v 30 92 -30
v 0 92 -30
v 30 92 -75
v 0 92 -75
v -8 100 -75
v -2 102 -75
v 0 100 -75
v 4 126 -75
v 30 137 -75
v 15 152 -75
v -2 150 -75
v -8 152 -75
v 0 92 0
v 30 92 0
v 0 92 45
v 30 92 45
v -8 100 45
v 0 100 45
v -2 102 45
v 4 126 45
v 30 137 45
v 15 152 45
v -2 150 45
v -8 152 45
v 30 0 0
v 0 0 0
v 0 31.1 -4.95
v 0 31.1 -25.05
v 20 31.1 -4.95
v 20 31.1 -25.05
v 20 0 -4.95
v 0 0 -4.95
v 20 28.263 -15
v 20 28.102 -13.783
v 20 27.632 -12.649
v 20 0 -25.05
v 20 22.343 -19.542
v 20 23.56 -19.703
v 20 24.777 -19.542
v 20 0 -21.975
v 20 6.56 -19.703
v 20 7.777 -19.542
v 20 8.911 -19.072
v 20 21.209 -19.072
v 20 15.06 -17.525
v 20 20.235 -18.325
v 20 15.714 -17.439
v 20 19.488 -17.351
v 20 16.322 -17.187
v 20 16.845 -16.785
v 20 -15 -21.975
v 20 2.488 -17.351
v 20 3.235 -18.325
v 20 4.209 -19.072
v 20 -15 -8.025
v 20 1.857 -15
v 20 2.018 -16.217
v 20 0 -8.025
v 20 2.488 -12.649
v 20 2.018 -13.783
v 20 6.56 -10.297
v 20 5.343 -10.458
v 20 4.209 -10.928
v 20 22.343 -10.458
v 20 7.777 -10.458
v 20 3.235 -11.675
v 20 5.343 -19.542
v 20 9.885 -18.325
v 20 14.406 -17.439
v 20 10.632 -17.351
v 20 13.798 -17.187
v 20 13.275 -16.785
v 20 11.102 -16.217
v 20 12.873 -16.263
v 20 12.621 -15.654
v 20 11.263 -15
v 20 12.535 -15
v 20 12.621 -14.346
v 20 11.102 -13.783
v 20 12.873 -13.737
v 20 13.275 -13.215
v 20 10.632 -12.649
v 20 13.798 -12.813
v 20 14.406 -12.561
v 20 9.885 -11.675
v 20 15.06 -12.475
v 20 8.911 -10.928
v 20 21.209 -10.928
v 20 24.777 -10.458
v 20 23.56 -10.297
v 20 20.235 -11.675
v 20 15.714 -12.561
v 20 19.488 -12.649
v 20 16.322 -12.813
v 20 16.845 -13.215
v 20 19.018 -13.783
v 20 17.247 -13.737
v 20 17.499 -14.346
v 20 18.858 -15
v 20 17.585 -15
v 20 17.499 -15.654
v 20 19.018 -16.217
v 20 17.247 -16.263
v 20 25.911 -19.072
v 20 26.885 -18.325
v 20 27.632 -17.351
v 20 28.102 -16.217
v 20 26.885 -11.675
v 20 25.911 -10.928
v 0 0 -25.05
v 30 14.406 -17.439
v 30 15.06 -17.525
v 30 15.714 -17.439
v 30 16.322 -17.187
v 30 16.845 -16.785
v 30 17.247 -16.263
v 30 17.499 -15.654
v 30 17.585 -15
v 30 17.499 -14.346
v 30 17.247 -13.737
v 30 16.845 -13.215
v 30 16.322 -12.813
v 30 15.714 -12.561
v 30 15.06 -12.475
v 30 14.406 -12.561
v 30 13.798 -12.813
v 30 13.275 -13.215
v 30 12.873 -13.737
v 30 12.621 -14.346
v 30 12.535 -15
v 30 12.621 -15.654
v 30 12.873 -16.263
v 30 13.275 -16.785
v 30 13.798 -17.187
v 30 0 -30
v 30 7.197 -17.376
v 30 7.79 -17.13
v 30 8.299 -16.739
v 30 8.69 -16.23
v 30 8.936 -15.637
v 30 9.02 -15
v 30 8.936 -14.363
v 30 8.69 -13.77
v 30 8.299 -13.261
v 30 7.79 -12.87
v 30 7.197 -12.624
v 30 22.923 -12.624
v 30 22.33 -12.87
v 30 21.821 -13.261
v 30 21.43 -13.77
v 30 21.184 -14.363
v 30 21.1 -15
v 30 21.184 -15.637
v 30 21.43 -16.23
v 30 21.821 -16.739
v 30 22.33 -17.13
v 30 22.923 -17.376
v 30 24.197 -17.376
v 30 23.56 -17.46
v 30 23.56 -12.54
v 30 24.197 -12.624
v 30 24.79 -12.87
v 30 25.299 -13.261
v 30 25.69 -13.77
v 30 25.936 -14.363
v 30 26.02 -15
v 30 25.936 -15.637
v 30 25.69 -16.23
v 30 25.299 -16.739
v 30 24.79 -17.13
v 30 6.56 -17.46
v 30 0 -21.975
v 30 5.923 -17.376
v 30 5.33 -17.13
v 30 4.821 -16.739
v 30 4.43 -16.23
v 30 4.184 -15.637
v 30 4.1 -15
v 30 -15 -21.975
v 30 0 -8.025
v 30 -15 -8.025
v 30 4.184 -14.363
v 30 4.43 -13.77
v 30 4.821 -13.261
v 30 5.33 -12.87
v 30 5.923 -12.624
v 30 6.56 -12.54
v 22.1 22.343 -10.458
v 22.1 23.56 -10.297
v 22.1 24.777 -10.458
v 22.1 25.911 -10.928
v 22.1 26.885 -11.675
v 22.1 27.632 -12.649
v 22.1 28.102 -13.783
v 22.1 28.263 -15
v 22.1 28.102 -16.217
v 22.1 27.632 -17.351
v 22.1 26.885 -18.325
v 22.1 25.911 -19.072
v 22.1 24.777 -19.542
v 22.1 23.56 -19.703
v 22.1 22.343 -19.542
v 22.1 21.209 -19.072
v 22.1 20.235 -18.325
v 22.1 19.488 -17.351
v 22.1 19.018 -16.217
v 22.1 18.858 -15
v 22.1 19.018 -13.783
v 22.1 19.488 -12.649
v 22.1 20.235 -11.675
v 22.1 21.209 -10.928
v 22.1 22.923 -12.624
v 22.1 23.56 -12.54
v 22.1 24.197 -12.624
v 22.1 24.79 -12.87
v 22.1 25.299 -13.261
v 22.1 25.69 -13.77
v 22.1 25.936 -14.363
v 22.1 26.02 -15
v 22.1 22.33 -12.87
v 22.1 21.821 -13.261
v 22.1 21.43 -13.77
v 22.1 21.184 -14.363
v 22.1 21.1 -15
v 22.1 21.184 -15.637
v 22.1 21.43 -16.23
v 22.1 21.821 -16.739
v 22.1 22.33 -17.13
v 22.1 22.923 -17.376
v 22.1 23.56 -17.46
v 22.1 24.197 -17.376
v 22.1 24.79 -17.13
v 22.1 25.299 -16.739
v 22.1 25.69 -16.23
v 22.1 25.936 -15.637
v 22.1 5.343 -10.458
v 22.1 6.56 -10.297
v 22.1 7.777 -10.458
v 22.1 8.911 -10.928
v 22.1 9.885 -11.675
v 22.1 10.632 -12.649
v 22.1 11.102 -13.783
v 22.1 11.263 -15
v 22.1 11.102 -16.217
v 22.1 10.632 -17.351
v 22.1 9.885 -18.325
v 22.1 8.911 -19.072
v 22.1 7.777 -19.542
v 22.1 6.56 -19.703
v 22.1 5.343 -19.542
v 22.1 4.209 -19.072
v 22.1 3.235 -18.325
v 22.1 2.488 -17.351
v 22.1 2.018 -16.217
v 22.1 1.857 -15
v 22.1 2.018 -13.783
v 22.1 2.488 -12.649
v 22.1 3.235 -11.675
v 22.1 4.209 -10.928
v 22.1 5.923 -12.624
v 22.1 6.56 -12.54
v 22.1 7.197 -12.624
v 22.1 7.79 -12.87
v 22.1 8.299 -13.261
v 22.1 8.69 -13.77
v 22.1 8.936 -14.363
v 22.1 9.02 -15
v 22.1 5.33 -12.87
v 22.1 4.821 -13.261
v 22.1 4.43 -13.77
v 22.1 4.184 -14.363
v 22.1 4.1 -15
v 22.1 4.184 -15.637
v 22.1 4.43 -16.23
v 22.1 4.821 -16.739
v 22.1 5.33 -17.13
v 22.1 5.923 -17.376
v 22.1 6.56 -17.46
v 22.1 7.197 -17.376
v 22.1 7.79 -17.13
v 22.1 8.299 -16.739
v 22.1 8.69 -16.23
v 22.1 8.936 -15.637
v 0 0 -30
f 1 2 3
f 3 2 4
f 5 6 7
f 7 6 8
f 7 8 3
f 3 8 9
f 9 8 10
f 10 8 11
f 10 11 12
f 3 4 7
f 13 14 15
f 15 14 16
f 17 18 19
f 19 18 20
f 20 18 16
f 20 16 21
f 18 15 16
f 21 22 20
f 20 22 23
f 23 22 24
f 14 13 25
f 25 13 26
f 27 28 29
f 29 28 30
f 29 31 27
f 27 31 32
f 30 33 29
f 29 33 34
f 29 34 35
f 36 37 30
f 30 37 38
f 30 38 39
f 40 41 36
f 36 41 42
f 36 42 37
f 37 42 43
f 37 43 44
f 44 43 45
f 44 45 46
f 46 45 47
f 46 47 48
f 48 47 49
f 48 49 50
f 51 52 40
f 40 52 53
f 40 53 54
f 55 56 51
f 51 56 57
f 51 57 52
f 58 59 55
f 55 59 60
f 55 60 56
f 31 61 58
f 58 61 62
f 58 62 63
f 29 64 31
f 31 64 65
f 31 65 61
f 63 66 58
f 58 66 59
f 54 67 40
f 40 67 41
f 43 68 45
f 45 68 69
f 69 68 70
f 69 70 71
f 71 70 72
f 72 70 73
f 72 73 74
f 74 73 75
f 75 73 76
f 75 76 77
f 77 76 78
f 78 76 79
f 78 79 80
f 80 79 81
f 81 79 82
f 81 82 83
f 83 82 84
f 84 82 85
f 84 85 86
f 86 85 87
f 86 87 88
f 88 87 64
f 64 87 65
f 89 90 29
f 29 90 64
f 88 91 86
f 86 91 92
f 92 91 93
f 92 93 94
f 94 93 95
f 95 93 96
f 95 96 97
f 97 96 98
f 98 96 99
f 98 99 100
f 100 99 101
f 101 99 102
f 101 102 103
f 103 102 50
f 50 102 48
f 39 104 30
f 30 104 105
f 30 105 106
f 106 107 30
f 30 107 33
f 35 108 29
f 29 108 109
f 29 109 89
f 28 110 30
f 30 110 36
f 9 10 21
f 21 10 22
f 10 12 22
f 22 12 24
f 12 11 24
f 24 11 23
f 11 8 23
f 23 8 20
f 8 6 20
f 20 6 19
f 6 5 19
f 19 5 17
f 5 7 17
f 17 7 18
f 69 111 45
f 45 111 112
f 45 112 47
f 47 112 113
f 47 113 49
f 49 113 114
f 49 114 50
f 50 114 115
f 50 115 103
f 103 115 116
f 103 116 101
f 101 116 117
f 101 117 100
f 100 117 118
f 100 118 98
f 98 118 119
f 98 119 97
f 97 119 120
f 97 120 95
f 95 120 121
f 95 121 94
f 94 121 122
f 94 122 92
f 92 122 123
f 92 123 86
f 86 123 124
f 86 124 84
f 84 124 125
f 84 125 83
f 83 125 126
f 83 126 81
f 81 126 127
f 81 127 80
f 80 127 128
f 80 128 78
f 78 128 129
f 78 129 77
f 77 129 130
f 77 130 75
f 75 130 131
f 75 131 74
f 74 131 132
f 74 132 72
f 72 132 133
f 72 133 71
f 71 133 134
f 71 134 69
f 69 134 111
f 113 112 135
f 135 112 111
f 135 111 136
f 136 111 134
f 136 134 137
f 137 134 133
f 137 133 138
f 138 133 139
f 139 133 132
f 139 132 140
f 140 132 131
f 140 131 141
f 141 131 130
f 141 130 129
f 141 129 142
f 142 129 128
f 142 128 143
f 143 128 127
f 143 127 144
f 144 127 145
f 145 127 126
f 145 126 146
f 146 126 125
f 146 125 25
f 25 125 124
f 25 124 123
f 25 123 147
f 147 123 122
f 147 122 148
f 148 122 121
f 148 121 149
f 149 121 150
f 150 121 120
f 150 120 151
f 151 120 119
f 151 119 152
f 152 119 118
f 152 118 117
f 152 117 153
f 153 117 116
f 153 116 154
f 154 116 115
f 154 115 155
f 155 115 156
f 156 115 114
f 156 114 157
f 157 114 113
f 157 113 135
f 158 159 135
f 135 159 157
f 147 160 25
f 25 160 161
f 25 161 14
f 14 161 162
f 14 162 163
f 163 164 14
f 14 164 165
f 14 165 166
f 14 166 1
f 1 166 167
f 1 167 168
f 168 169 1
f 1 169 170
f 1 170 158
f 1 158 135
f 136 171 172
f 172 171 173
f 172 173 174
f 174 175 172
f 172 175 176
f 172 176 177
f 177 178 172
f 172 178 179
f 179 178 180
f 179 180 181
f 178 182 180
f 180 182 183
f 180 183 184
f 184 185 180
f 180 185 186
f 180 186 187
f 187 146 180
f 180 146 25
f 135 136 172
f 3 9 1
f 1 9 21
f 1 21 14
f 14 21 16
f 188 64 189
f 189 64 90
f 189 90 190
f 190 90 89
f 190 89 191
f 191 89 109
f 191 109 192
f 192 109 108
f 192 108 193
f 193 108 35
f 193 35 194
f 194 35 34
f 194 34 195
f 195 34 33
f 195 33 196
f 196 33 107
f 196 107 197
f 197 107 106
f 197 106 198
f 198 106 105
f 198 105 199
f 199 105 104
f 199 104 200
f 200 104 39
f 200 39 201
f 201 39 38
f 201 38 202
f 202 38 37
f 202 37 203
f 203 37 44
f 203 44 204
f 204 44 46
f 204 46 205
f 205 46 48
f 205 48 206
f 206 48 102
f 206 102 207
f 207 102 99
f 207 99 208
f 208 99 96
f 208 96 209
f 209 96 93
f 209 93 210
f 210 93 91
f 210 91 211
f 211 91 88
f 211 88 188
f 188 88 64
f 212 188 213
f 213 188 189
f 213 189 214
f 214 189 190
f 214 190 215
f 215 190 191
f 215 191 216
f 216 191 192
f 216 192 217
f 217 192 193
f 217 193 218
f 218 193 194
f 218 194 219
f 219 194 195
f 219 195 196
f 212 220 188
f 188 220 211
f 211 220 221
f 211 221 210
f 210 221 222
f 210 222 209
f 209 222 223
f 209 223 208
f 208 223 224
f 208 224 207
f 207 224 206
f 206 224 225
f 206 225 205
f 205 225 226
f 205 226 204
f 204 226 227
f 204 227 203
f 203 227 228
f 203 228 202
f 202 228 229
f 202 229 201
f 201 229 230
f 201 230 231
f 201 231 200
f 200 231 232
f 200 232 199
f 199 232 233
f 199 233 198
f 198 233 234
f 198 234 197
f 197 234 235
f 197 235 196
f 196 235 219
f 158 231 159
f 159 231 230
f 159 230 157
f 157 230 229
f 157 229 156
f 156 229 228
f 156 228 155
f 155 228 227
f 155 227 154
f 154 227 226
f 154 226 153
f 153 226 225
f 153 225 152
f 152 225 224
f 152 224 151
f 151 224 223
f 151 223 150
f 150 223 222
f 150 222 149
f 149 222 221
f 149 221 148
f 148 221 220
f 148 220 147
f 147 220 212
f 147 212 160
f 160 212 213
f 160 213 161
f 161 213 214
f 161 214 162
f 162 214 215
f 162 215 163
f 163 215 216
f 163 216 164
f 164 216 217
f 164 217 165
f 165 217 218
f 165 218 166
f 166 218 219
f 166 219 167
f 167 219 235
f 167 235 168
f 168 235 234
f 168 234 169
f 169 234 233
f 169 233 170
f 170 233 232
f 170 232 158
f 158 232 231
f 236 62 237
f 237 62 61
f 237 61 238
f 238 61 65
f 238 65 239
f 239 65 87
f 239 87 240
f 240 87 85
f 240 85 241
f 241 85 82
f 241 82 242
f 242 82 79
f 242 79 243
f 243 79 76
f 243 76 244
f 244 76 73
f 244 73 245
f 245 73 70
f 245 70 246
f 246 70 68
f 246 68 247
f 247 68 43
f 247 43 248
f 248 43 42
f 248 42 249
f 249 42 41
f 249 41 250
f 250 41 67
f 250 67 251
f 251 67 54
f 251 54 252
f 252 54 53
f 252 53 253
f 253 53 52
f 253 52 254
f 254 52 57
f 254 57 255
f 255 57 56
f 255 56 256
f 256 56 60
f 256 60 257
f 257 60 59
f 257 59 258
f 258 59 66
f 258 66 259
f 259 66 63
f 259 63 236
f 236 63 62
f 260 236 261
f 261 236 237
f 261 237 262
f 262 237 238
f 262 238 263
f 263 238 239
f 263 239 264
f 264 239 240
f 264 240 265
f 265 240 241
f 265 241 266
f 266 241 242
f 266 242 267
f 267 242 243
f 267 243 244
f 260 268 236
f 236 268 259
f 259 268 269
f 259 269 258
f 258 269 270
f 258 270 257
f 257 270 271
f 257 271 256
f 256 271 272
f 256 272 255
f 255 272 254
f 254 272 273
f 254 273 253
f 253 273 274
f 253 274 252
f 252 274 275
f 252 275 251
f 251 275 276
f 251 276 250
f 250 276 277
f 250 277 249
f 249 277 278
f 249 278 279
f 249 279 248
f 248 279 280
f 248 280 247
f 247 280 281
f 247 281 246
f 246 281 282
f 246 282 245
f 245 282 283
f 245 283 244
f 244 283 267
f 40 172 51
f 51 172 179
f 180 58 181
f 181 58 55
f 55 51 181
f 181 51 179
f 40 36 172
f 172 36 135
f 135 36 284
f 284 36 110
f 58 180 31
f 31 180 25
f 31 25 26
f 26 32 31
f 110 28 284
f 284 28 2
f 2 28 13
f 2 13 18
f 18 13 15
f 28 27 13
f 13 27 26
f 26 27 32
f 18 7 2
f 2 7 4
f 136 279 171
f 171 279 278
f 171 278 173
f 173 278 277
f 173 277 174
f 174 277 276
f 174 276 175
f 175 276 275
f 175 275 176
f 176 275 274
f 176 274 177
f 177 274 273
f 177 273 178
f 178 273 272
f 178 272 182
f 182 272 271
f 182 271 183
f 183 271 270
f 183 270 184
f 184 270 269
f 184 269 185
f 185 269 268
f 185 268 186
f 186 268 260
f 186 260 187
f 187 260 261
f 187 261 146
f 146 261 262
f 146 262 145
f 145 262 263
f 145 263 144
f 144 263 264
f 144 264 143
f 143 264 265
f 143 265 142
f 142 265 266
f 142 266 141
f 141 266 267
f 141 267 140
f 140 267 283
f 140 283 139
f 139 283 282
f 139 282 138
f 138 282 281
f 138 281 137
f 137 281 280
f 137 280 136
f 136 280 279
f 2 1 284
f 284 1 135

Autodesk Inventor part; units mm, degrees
ref_plane "YZ Plane" through (0, 0, 0) normal (1, 0, 0) x (0, 1, 0)
ref_plane "XZ Plane" through (0, 0, 0) normal (0, 1, 0) x (-1, 0, 0)
sketch "Sketch1" plane through (0, 0, 0) normal (0, 0, 1) x (1, 0, 0)
  line L0 (0, 0) -> (25, 0)
  line L1 (25, 0) -> (25, 40)
  line L2 (25, 40) -> (0, 40)
  line L3 (0, 40) -> (0, 0)
  dimension "d1" = 25
  dimension "d2" = 40
  dimension "d3" = 25
extrude "Extrusion1" add sketch "Sketch1" against normal blind 30
sketch "Sketch2" plane through (25, 0, 0) normal (1, 0, 0) x (0, 0, -1)
  line L0 (0, 0) -> (30, 0) projected
  circle A0 centre (15, 6.56) radius 2.46
extrude "Extrusion2" cut sketch "Sketch2" against normal blind 30
sketch "Sketch3" plane through (0, 0, 0) normal (-1, 0, 0) x (0, 0, 1)
  line L0 (0, 0) -> (-30, 0) projected
  line L1 (-25.05, 0) -> (-4.95, 0)
  line L2 (-4.95, 0) -> (-4.95, 33.12)
  line L3 (-4.95, 33.12) -> (-25.05, 33.12)
  line L4 (-25.05, 33.12) -> (-25.05, 0)
  dimension "d11" = 20.1
extrude "Extrusion3" cut sketch "Sketch3" against normal blind 20
sketch "Sketch4" plane through (0, 0, 0) normal (0, -1, 0) x (1, 0, 0)
  line L0 (20, -4.95) -> (20, -25.05) projected
  line L1 (20, -15) -> (25, -15)
  line L2 (25, 0) -> (25, -30) projected
  line L3 (20, -8.025) -> (25, -8.025)
  line L4 (25, -8.025) -> (25, -21.975)
  line L5 (25, -21.975) -> (20, -21.975)
  line L6 (20, -21.975) -> (20, -8.025)
  line L7 (20, -8.025) -> (25, -21.975) construction
  line L8 (25, -8.025) -> (20, -21.975) construction
  line L9 (25, -12.54) -> (25, -17.46) projected
  point P0 (0, 0)
  point P1 (22.5, -15)
  dimension "d14" = 13.95
extrude "Extrusion4" add sketch "Sketch4" along normal blind 15
sketch "Sketch5" plane through (20, 0, 0) normal (-1, 0, 0) x (0, 0, 1)
  circle A0 centre (-15, 6.56) radius 2.46 projected
  circle A1 centre (-15, 6.56) radius 4.7025
  circle A2 centre (-15, 6.56) radius 2.46 projected
  circle A3 centre (-15, 6.56) radius 2.46
  point P0 (0, 0)
  dimension "d17" = 9.405
extrude "Extrusion5" cut sketch "Sketch5" against normal blind 2.1
sketch "Sketch6" plane through (25, 0, 0) normal (1, 0, 0) x (0, 0, -1)
  circle A0 centre (15, 6.56) radius 4.7025 projected
  line L0 (15, 6.56) -> (15, 23.56)
  circle A1 centre (15, 23.56) radius 2.46
  point P0 (0, 0)
  dimension "d20" = 17
  dimension "d21" = 4.92
extrude "Extrusion6" cut sketch "Sketch6" against normal blind 10 contours A1
sketch "Sketch7" plane through (20, 0, 0) normal (-1, 0, 0) x (0, 0, 1)
  circle A0 centre (-15, 23.56) radius 2.46 projected
  circle A1 centre (-15, 23.56) radius 4.7025
  point P0 (0, 0)
  dimension "d24" = 9.405
extrude "Extrusion7" cut sketch "Sketch7" against normal blind 2.1
sketch "Sketch9" plane through (25, 0, 0) normal (1, 0, 0) x (0, 0, -1)
  circle A0 centre (15, 6.56) radius 2.46 projected
  circle A1 centre (15, 6.56) radius 2.46
  circle A2 centre (15, 23.56) radius 2.46 projected
  circle A3 centre (15, 23.56) radius 2.46
  line L0 (30, 40) -> (30, 0) projected
  line L1 (30, 0) -> (30, 40)
  line L2 (30, 40) -> (0, 40)
  line L3 (0, 40) -> (0, 0)
  line L4 (0, 0) -> (8.025, 0) projected
  line L5 (21.975, 0) -> (21.975, -15)
  line L6 (21.975, -15) -> (8.025, -15)
  line L7 (8.025, -15) -> (8.025, 0)
  line L8 (0, 0) -> (8.025, 0)
  line L9 (21.975, 0) -> (30, 0)
extrude "Extrusion8" add sketch "Sketch9" along normal blind 5
sketch "Sketch10" plane through (0, 40, 0) normal (0, 1, 0) x (1, 0, 0)
  line L0 (0, 30) -> (30, 30) projected
  line L1 (30, 0) -> (0, 0) projected
  line L2 (0, 30) -> (30, 30)
  line L3 (30, 30) -> (30, 0)
  line L4 (30, 0) -> (0, 0)
  line L5 (0, 0) -> (0, 30)
extrude "Extrusion9" add sketch "Sketch10" along normal blind 30
sketch "Sketch12" plane through (30, 0, 0) normal (1, 0, 0) x (0, 0, -1)
  circle A0 centre (15, 6.56) radius 2.46 projected
  line L0 (15, 6.56) -> (15, 15.06)
  circle A1 centre (15, 15.06) radius 2.525
  point P0 (0, 0)
  dimension "d31" = 8.5
  dimension "d33" = 5.05
extrude "Extrusion10" cut sketch "Sketch12" against normal blind 30 contours A1
sketch "Sketch14" plane through (0, 0, 0) normal (0, 0, 1) x (1, 0, 0)
  line L0 (30, 70) -> (0, 70) projected
  line L1 (0, 100) -> (-8, 100)
  line L2 (30, 0) -> (30, 70) projected
  line L3 (30, 118) -> (30, 70)
  line L4 (30, 105) -> (30, 100)
  line L5 (0, 70) -> (30, 70) projected
  line L6 (0, 70) -> (0, 100)
  line L7 (30, 122.5) -> (30, 118)
  line L8 (-2, 150) -> (-8, 152)
  line L9 (-2, 102) -> (-8, 100)
  line L10 (-2, 102) -> (4, 126)
  line L11 (4, 126) -> (-2, 150)
  line L12 (-8, 152) -> (15, 152)
  line L13 (30, 137) -> (15, 152)
  line L14 (30, 122.5) -> (30, 137)
  point P0 (0, 0)
  dimension "d47" = 30
extrude "Extrusion12" add sketch "Sketch14" against normal blind 30
sketch "Sketch15" plane through (0, 0, -25.05) normal (-1, 0, 0) x (0, 0, 1)
  line L0 (0, 33.12) -> (20.1, 33.12) projected
  line L1 (20.1, 33.12) -> (20.1, 0) projected
  line L2 (0, 33.12) -> (20.1, 33.12)
  line L3 (20.1, 33.12) -> (20.1, 31.1)
  line L4 (20.1, 31.1) -> (0, 31.1)
  line L5 (0, 31.1) -> (0, 33.12)
  point P0 (25.05, 0)
  dimension "d57" = 2.02
extrude "Extrusion13" add sketch "Sketch15" against normal blind 20
sketch "Sketch25" plane through (0, 0, 0) normal (0, 0, 1) x (1, 0, 0)
  point P0 (0, 0)
sketch "Sketch26" plane through (0, 0, 0) normal (0, 0, 1) x (1, 0, 0)
  line L0 (-8, 100) -> (0, 100) projected
  line L1 (0, 100) -> (-8, 100)
  line L2 (-8, 100) -> (-2, 102) projected
  line L3 (-8, 100) -> (-2, 102)
  line L4 (-2, 102) -> (4, 126) projected
  line L5 (-2, 102) -> (4, 126)
  line L6 (4, 126) -> (-2, 150) projected
  line L7 (4, 126) -> (-2, 150)
  line L8 (-8, 152) -> (-2, 150) projected
  line L9 (-2, 150) -> (-8, 152)
  line L10 (15, 152) -> (-8, 152) projected
  line L11 (-8, 152) -> (15, 152)
  line L12 (30, 137) -> (15, 152) projected
  line L13 (15, 152) -> (30, 137)
  line L14 (30, 137) -> (30, 92)
  line L15 (30, 0) -> (30, 137) projected
  line L16 (30, 92) -> (0, 92)
  line L17 (0, 0) -> (0, 100) projected
  line L18 (0, 100) -> (0, 92)
  dimension "d93" = 45
extrude "Extrusion14" add sketch "Sketch26" along normal blind 45
ref_plane "Work Plane1" through (0, 0, -15) normal (0, 0, 1) x (1, 0, 0)
mirror "Mirror1" about plane through (0, 0, -15) normal (0, 0, 1) of "Extrusion14"
properties part number "48mm_x_120mm"
